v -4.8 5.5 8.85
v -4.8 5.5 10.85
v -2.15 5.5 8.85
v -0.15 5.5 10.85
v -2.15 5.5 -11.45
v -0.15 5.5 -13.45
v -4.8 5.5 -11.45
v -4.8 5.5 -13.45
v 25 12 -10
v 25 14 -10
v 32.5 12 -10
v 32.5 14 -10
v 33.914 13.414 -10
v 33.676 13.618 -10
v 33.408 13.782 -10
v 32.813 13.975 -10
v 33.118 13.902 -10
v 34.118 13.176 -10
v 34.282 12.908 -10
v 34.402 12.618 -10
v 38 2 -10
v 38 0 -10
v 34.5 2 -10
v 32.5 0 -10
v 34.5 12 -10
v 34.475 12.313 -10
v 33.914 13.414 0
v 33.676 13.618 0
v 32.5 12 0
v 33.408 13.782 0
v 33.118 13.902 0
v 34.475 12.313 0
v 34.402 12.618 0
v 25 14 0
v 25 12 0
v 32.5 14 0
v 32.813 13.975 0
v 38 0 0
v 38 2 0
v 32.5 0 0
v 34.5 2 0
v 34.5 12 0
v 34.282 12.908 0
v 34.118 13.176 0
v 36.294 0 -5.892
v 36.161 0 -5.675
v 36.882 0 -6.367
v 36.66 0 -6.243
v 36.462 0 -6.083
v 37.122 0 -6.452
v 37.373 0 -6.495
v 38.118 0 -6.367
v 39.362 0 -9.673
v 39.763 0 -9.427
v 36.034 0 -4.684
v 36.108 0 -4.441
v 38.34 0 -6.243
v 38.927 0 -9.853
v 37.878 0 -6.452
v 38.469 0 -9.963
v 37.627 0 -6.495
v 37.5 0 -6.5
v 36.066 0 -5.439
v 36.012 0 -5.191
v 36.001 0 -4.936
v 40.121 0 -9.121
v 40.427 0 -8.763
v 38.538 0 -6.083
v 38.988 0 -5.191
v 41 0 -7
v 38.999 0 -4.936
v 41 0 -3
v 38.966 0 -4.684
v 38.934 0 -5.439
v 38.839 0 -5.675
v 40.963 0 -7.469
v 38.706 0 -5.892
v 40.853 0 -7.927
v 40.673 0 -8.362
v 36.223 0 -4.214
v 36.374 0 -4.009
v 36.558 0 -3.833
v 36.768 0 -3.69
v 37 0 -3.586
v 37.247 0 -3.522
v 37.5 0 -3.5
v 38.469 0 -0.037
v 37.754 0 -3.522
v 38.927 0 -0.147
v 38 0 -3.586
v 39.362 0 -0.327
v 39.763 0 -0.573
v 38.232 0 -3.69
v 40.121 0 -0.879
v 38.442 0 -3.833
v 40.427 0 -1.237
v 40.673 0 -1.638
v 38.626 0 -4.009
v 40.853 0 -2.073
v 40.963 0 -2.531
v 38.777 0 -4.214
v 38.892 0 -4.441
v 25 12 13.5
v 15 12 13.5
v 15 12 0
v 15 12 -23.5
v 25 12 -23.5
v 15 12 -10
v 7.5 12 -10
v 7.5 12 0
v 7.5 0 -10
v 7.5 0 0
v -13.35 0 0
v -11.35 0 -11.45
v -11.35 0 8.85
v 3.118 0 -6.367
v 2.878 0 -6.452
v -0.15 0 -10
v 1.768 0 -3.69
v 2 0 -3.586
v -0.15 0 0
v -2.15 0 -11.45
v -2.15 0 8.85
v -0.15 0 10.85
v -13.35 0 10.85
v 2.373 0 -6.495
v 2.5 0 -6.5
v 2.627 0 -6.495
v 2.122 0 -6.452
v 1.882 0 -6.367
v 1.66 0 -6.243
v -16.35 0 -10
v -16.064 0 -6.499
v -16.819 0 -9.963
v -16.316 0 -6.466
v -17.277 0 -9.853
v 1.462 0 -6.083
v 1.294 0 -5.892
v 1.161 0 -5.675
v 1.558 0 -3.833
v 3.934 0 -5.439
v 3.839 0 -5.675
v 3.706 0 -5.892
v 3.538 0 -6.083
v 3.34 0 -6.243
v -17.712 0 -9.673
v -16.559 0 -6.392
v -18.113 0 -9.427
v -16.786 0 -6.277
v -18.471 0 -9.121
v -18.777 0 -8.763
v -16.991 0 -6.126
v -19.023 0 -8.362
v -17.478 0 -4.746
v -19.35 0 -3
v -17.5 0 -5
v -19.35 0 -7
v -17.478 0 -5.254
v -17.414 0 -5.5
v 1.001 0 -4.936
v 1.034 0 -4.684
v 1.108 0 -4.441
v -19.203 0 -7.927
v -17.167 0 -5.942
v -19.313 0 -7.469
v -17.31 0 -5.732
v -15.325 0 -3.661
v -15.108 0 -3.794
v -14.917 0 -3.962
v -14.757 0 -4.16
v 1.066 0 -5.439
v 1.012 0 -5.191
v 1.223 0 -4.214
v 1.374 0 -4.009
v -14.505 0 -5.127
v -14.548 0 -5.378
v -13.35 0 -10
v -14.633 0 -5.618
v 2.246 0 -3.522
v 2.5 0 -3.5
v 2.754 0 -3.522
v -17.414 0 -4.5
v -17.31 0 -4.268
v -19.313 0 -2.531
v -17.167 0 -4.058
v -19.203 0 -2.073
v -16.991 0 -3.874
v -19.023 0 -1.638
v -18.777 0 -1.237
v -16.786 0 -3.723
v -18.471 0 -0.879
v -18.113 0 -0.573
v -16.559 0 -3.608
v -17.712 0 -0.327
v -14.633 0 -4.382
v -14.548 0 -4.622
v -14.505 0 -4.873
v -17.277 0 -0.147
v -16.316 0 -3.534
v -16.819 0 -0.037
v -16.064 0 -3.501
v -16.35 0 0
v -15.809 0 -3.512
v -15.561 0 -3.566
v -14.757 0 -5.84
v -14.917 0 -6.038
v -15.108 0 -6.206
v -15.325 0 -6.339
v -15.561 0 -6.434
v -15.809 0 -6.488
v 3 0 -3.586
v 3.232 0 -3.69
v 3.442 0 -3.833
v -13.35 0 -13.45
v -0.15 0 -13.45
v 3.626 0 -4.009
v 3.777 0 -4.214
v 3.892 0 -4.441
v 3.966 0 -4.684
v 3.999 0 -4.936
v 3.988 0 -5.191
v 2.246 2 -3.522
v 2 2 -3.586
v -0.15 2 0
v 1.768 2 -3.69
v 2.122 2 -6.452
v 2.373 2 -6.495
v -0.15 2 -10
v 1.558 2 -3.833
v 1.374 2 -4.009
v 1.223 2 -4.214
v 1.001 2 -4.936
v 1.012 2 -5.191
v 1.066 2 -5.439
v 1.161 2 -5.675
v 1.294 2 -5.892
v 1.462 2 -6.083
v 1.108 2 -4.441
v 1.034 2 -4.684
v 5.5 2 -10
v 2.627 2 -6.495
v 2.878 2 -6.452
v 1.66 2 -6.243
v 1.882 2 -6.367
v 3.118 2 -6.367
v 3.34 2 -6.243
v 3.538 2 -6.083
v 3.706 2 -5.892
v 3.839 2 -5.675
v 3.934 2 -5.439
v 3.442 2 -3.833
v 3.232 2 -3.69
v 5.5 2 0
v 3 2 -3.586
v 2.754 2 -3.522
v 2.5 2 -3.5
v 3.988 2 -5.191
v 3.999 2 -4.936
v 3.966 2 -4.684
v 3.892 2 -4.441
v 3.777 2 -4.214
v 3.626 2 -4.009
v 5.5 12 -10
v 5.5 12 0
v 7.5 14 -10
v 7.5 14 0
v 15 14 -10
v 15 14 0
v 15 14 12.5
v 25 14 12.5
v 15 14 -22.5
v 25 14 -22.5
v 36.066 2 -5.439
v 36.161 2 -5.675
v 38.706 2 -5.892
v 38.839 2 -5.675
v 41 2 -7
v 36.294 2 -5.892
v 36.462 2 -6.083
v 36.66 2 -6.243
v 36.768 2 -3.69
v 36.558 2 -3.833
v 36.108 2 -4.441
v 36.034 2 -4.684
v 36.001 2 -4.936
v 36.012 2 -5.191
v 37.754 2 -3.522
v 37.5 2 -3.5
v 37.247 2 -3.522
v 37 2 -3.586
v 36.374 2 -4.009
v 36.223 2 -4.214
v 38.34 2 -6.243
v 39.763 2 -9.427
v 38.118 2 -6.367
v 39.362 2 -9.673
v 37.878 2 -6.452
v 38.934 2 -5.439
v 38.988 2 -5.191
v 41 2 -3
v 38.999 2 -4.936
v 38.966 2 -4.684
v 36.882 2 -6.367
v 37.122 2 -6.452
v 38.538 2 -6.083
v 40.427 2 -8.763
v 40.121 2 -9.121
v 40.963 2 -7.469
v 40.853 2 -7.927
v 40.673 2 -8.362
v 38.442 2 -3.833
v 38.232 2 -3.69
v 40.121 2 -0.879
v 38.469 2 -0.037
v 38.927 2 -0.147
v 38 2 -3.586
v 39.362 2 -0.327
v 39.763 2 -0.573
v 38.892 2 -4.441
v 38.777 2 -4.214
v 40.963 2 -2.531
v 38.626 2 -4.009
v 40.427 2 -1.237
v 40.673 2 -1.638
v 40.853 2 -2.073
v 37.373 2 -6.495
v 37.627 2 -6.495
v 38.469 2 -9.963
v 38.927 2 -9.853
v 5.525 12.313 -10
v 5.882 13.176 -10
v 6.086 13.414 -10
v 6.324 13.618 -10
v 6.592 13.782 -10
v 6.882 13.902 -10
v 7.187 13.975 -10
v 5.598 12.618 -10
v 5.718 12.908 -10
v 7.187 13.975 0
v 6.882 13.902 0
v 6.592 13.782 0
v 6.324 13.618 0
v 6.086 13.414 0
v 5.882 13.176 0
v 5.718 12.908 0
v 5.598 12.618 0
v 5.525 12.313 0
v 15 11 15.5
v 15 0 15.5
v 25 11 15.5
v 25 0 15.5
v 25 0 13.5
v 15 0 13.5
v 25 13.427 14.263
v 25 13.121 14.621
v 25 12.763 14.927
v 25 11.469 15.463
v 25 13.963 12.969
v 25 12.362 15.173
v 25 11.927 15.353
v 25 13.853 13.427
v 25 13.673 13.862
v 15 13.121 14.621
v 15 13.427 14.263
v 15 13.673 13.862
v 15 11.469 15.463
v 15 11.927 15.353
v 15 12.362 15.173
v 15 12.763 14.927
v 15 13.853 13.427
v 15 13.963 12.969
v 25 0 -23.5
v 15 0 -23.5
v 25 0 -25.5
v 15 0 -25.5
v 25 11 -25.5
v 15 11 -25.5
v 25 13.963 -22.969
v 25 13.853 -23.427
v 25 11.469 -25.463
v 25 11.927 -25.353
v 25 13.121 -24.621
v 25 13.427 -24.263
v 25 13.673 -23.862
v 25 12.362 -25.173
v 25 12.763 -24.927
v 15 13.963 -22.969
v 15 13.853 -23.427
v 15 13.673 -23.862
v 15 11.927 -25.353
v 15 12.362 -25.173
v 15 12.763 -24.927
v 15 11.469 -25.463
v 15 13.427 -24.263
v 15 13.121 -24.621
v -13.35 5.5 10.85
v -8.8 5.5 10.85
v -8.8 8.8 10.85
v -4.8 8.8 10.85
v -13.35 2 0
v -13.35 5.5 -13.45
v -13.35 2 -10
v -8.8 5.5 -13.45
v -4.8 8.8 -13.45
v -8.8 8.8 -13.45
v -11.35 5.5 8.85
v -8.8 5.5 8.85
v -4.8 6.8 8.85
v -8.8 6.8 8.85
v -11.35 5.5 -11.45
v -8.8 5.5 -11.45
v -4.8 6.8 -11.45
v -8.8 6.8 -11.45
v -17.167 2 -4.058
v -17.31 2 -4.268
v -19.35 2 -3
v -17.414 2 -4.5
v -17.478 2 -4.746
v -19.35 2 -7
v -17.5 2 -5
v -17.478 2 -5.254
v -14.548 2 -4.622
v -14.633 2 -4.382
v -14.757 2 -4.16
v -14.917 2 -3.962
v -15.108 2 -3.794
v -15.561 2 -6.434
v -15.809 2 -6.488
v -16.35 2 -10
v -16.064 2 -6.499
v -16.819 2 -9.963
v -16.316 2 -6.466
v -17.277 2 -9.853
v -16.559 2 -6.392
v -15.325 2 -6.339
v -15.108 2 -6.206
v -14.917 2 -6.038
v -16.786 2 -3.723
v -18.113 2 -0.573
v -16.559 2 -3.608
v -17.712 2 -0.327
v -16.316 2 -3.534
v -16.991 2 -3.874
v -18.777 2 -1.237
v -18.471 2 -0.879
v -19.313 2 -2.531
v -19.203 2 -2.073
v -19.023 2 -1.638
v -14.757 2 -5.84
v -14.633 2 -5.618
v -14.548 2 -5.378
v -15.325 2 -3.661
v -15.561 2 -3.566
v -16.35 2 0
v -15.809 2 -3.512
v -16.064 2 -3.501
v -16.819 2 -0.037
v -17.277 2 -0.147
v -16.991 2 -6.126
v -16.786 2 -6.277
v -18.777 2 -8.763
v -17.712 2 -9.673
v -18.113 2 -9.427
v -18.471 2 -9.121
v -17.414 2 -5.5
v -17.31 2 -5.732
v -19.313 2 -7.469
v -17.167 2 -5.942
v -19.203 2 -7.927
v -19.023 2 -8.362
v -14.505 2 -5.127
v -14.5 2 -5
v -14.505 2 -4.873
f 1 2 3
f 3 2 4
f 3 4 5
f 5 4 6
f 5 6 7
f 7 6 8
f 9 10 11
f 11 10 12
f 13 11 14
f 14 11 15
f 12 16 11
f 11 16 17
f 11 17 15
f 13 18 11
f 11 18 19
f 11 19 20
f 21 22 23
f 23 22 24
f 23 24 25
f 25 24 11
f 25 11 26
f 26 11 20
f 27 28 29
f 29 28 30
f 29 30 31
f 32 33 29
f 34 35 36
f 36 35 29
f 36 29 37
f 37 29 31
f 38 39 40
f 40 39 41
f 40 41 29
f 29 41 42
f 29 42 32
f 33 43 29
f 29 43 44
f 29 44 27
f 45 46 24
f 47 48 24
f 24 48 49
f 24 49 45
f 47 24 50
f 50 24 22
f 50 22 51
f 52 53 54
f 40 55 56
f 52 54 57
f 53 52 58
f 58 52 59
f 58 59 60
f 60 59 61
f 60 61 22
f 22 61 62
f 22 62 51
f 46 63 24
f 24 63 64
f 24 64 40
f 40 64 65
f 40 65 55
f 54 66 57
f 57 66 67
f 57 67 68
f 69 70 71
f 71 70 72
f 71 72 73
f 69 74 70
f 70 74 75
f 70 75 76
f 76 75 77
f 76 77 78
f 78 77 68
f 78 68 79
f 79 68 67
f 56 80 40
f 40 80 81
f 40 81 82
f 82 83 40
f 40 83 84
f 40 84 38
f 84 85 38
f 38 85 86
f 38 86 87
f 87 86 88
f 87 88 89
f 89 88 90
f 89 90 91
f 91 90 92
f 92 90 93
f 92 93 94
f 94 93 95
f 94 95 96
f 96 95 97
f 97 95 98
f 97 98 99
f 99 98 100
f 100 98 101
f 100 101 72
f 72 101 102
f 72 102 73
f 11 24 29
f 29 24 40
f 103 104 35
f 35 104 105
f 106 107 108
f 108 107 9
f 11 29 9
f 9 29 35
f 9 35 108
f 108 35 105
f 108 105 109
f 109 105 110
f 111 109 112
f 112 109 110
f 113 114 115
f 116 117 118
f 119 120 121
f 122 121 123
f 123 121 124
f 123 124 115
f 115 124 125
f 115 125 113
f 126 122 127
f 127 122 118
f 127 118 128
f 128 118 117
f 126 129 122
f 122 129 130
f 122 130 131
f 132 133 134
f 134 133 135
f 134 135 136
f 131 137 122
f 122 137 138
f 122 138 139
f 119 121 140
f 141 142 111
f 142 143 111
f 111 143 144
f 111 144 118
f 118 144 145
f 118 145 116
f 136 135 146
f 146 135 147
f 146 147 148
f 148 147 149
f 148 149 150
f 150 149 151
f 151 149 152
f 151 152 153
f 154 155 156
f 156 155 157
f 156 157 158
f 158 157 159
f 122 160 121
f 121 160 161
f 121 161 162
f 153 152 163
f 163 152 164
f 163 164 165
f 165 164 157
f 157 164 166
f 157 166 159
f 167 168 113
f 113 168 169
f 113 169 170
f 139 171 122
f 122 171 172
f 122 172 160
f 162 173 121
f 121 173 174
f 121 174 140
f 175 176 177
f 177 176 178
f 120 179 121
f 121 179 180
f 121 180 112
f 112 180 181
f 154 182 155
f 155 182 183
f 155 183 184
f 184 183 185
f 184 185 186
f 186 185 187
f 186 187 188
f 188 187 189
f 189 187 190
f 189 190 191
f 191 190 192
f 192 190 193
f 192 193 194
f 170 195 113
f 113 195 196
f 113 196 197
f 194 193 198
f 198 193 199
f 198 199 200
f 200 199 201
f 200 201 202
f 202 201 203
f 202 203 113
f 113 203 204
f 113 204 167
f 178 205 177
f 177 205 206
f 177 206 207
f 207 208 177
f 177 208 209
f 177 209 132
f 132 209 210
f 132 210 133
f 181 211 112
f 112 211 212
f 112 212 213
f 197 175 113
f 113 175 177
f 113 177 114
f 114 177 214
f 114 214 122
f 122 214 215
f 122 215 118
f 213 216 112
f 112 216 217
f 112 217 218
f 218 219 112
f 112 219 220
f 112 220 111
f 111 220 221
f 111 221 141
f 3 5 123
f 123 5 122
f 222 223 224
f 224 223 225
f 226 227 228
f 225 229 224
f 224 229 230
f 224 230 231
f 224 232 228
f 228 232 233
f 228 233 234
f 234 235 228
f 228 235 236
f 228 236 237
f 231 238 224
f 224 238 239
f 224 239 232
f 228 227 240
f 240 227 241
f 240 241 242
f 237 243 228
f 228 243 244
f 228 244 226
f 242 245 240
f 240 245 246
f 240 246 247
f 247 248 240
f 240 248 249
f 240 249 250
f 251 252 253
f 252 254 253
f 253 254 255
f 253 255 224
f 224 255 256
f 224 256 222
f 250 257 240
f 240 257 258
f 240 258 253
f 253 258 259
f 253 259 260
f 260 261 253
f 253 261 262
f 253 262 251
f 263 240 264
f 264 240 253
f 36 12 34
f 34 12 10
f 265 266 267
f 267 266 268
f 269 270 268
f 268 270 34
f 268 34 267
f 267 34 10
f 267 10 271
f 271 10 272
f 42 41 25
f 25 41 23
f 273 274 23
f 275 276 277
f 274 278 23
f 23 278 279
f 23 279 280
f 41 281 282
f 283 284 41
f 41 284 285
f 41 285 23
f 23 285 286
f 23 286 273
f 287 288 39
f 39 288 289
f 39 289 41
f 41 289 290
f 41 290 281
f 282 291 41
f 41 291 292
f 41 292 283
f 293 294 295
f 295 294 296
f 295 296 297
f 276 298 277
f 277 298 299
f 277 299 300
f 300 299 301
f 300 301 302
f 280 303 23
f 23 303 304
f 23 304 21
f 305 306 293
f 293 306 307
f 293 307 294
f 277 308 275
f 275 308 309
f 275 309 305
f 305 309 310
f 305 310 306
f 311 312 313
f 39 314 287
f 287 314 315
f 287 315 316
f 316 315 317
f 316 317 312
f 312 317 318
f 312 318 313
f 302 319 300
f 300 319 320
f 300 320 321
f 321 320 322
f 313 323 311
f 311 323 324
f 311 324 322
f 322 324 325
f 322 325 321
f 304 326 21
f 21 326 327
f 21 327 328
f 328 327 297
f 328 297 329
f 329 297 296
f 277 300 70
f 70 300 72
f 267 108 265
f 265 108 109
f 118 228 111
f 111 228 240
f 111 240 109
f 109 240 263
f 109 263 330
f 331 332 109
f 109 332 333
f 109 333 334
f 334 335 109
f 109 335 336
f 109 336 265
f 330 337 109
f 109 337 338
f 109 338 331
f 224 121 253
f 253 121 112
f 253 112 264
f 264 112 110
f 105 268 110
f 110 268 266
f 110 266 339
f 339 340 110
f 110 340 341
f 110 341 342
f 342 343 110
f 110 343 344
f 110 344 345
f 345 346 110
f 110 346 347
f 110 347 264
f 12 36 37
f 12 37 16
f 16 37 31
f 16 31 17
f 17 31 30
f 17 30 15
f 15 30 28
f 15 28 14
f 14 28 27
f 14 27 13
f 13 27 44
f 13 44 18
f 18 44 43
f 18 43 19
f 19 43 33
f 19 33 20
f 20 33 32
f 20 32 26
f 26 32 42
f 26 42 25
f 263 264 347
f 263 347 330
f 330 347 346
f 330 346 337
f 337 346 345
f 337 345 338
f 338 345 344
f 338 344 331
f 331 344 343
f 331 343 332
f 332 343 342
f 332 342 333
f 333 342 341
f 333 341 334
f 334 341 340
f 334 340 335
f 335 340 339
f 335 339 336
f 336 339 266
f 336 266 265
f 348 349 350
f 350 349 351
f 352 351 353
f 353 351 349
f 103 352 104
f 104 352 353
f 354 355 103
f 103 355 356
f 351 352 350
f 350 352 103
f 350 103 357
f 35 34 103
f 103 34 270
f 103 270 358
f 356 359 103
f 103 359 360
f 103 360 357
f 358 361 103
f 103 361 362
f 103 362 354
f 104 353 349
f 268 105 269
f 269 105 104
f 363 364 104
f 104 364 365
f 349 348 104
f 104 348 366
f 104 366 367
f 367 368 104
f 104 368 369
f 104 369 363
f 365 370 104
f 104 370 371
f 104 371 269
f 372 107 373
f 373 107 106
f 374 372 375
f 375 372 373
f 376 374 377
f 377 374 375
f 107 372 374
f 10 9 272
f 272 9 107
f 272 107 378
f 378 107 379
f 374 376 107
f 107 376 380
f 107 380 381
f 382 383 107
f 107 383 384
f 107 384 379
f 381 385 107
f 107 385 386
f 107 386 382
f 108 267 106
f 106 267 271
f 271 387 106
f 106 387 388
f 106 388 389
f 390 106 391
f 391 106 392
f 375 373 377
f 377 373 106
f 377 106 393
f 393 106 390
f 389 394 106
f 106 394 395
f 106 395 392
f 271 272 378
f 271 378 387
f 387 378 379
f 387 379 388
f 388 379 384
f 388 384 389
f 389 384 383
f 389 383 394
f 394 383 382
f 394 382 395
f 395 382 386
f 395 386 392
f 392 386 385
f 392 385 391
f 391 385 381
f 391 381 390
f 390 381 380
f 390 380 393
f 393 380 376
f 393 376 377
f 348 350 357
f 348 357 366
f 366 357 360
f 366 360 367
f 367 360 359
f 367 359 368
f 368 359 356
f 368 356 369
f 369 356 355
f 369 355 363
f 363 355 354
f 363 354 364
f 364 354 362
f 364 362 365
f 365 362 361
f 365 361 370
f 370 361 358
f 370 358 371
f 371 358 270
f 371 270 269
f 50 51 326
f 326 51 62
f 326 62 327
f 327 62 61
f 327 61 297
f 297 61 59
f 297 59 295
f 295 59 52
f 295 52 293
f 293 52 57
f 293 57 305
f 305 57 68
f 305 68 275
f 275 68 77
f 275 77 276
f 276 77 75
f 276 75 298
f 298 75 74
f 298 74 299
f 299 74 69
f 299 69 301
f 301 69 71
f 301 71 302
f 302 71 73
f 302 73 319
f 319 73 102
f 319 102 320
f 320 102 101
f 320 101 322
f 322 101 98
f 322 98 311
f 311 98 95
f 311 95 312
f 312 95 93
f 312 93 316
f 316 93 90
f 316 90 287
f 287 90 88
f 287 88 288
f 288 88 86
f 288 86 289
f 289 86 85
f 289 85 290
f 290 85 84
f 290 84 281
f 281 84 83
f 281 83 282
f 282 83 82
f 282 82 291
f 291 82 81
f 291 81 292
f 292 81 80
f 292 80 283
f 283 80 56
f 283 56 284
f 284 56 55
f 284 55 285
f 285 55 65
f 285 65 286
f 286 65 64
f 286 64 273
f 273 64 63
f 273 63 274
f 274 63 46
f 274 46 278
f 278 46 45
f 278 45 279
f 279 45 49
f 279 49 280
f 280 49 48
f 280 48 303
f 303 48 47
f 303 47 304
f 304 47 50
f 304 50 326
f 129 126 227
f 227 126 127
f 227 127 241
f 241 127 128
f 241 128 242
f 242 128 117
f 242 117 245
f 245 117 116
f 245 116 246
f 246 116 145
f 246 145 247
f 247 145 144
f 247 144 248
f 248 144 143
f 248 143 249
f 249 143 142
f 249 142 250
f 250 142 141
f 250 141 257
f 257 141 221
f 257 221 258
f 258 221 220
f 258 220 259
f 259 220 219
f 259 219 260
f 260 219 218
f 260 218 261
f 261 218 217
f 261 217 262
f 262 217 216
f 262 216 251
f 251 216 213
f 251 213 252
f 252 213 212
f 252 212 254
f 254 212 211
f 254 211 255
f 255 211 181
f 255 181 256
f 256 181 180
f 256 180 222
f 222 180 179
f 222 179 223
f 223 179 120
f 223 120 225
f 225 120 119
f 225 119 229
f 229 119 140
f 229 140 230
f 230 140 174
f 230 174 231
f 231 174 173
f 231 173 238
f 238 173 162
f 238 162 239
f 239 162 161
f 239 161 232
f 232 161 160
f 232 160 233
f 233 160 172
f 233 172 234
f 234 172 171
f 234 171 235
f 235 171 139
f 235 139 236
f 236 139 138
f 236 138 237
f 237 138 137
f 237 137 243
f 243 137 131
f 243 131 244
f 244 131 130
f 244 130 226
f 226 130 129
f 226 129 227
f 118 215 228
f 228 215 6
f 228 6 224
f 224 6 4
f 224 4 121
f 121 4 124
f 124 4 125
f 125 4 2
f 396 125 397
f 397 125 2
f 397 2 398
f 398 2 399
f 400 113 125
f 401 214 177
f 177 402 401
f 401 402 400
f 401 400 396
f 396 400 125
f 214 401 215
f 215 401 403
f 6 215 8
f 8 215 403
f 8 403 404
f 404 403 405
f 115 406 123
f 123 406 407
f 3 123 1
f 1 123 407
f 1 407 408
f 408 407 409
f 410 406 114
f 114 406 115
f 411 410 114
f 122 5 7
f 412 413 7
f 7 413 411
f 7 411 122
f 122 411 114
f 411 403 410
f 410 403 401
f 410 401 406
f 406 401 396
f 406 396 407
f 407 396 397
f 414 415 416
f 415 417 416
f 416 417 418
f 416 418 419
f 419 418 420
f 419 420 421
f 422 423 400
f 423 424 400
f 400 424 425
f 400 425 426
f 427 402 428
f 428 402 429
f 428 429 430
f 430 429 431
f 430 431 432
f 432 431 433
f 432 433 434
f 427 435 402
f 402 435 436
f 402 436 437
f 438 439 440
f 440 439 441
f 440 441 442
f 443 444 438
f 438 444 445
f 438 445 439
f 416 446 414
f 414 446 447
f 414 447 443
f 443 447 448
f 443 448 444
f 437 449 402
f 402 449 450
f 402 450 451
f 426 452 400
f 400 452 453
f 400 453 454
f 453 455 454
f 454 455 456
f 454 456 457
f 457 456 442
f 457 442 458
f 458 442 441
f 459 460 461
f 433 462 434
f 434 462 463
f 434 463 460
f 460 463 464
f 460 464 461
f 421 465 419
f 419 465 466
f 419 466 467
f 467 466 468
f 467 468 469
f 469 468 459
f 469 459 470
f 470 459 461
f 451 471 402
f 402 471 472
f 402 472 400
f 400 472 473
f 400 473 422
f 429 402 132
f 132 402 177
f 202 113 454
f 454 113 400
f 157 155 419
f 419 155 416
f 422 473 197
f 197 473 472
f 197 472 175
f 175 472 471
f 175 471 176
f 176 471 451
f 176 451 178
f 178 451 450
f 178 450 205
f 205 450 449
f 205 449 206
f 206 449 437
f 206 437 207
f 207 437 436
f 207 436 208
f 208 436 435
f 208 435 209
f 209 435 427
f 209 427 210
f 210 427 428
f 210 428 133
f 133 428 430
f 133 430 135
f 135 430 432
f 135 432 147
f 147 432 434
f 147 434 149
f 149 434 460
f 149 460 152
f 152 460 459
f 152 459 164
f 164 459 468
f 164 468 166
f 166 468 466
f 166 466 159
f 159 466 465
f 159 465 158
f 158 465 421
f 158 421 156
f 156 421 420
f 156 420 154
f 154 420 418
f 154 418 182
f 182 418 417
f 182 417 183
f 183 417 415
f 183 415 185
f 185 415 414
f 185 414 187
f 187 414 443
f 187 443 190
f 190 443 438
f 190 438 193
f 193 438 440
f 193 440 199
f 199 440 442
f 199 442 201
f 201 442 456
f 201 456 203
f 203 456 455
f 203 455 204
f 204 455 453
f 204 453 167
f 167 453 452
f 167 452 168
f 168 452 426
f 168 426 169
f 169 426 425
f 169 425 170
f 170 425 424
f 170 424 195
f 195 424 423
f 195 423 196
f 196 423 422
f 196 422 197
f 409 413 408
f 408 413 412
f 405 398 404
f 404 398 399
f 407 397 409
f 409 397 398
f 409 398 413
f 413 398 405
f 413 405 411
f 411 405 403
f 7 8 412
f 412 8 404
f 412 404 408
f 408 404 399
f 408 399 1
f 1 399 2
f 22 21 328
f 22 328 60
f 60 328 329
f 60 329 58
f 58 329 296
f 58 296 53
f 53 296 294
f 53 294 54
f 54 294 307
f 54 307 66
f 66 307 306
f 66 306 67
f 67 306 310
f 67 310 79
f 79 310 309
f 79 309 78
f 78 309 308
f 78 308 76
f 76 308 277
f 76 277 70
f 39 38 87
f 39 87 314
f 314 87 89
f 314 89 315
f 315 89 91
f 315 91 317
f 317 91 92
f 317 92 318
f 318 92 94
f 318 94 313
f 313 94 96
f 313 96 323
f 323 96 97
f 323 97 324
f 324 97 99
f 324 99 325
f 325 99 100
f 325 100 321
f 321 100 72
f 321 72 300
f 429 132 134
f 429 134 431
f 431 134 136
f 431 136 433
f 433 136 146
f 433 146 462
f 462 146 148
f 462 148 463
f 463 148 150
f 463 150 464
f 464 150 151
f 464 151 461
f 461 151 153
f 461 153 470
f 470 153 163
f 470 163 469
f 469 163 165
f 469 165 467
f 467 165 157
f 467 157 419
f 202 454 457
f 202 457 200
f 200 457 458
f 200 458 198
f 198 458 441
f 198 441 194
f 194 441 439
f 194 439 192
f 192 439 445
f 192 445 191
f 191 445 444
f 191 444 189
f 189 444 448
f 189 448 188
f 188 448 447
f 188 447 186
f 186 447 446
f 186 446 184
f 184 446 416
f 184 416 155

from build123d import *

# Parameters (mm, degrees)
EXTRUIR_L_MINA1_DEPTH             = 10
REDONDEO3_R                       = 2
EXTRUIR_L_MINA2_DEPTH             = 5
REDONDEO4_R                       = 3
CROQUIS2_R                        = 1.5
CORTAR_EXTRUIR1_DEPTH             = 10
CROQUIS5_W                        = 13.2
CROQUIS5_H                        = 24.3
CROQUIS5_W_2                      = 9.2
CROQUIS5_H_2                      = 20.3
EXTRUIR_L_MINA3_DEPTH             = 3.5
EXTRUIR_L_MINA3_DIRECTION_2_REACH = 51.752
CROQUIS7_W                        = 10
CROQUIS7_H                        = 2
SALIENTE_EXTRUIR1_DEPTH           = 6
CORTAR_EXTRUIR2_DEPTH             = 50.751884386
CORTAR_EXTRUIR2_DEPTH_BACK        = 50.751884386
CROQUIS8_R                        = 1.5
EXTRUIR_L_MINA4_DEPTH             = 2
REDONDEO5_R                       = 3


with BuildPart() as part:
    # Croquis1 → Extruir-Lámina1 (new body)
    with BuildSketch(Plane.XY):
        Polygon((-2.15, 0), (0, 0), (7.5, 0), (7.5, 12), (32.5, 12), (32.5, 0), (40, 0), (41, 0), (41, 2), (40, 2), (34.5, 2), (34.5, 14), (5.5, 14), (5.5, 2), (0, 2), (-2.15, 2), align=None)
    extrude(amount=-EXTRUIR_L_MINA1_DEPTH)

    # Redondeo3
    redondeo3_edges = [part.edges().sort_by_distance(p)[0] for p in [
        (5.5, 14, -5),
        (34.5, 14, -5),
    ]]
    fillet(redondeo3_edges, radius=REDONDEO3_R)

    # Croquis3 → Extruir-Lámina2 (add, symmetric)
    with BuildSketch(Plane(origin=(20, 0, 0), x_dir=(0, 0, -1), z_dir=(1, 0, 0))):
        Polygon((23.5, 0), (23.5, 12), (-13.5, 12), (-13.5, 0), (-15.5, 0), (-15.5, 14), (25.5, 14), (25.5, 0), align=None)
    extrude(amount=EXTRUIR_L_MINA2_DEPTH, both=True)

    # Redondeo4
    redondeo4_edges = [part.edges().sort_by_distance(p)[0] for p in [
        (20, 14, -25.5),
        (20, 14, 15.5),
    ]]
    fillet(redondeo4_edges, radius=REDONDEO4_R)

    # Croquis2 → Cortar-Extruir1 (cut)
    with BuildSketch(Plane(origin=(0, 2, 0), x_dir=(1, 0, 0), z_dir=(0, 1, 0))):
        with Locations(Location((2.5, 5, 0), (0, 0, 270))):
            Circle(CROQUIS2_R)
        with Locations(Location((37.5, 5, 0), (0, 0, 270))):
            Circle(CROQUIS2_R)
    extrude(amount=-CORTAR_EXTRUIR1_DEPTH, mode=Mode.SUBTRACT)

    # Croquis5 → Extruir-Lámina3 (add)
    with BuildSketch(Plane(origin=(0, 2, 0), x_dir=(1, 0, 0), z_dir=(0, 1, 0))):
        with Locations((-6.75, 1.3)):
            Rectangle(CROQUIS5_W, CROQUIS5_H)
        with Locations((-6.75, 1.3)):
            Rectangle(CROQUIS5_W_2, CROQUIS5_H_2, mode=Mode.SUBTRACT)
    extrude(amount=EXTRUIR_L_MINA3_DEPTH)

    # Extruir-Lámina3 direction 2: up to this face of the body (flat: up to its plane)
    extruir_l_mina3_direction_2_end = Plane(part.part.faces().sort_by_distance((-2.011031478, 0, -5))[0])
    # Croquis5 → Extruir-Lámina3 direction 2 (add, up to the picked face)
    with BuildSketch(Plane(origin=(0, 2, 0), x_dir=(1, 0, 0), z_dir=(0, 1, 0)), mode=Mode.PRIVATE) as extruir_l_mina3_direction_2_sk1:
        with Locations((-6.75, 1.3)):
            Rectangle(CROQUIS5_W, CROQUIS5_H)
        with Locations((-6.75, 1.3)):
            Rectangle(CROQUIS5_W_2, CROQUIS5_H_2, mode=Mode.SUBTRACT)
    extruir_l_mina3_direction_2_tool1 = split(extrude(extruir_l_mina3_direction_2_sk1.sketch, amount=-EXTRUIR_L_MINA3_DIRECTION_2_REACH, mode=Mode.PRIVATE), bisect_by=extruir_l_mina3_direction_2_end, keep=Keep.BOTH, mode=Mode.PRIVATE)
    add(extruir_l_mina3_direction_2_tool1.solids().sort_by(Axis((-6.75, 2, 10.573462), (0, -1, 0)))[0])

    # Croquis7 → Saliente-Extruir1 (add)
    with BuildSketch(Plane.ZY.offset(13.35)):
        with Locations((-5, 1)):
            Rectangle(CROQUIS7_W, CROQUIS7_H)
    extrude(amount=SALIENTE_EXTRUIR1_DEPTH)

    # Croquis8 → Cortar-Extruir2 (cut, two sides: drawn at the far end of the back side and taken through both)
    with BuildSketch(Plane(origin=(0, 2, 0), x_dir=(1, 0, 0), z_dir=(0, 1, 0)).offset(-CORTAR_EXTRUIR2_DEPTH_BACK)):
        with Locations(Location((-16, 5, 0), (0, 0, 180))):
            Circle(CROQUIS8_R)
    extrude(amount=CORTAR_EXTRUIR2_DEPTH + CORTAR_EXTRUIR2_DEPTH_BACK, mode=Mode.SUBTRACT)

    # Croquis9 → Extruir-Lámina4 (add, symmetric)
    with BuildSketch(Plane.ZY.offset(6.8)):
        Polygon((8.85, 5.5), (8.85, 6.8), (-11.45, 6.8), (-11.45, 5.5), (-13.45, 5.5), (-13.45, 8.8), (10.85, 8.8), (10.85, 5.5), align=None)
    extrude(amount=EXTRUIR_L_MINA4_DEPTH, both=True)

    # Redondeo5
    redondeo5_edges = [part.edges().sort_by_distance(p)[0] for p in [
        (-19.35, 1, -10),
        (-19.35, 1, 0),
        (41, 1, 0),
        (41, 1, -10),
    ]]
    fillet(redondeo5_edges, radius=REDONDEO5_R)


solid = part.part
